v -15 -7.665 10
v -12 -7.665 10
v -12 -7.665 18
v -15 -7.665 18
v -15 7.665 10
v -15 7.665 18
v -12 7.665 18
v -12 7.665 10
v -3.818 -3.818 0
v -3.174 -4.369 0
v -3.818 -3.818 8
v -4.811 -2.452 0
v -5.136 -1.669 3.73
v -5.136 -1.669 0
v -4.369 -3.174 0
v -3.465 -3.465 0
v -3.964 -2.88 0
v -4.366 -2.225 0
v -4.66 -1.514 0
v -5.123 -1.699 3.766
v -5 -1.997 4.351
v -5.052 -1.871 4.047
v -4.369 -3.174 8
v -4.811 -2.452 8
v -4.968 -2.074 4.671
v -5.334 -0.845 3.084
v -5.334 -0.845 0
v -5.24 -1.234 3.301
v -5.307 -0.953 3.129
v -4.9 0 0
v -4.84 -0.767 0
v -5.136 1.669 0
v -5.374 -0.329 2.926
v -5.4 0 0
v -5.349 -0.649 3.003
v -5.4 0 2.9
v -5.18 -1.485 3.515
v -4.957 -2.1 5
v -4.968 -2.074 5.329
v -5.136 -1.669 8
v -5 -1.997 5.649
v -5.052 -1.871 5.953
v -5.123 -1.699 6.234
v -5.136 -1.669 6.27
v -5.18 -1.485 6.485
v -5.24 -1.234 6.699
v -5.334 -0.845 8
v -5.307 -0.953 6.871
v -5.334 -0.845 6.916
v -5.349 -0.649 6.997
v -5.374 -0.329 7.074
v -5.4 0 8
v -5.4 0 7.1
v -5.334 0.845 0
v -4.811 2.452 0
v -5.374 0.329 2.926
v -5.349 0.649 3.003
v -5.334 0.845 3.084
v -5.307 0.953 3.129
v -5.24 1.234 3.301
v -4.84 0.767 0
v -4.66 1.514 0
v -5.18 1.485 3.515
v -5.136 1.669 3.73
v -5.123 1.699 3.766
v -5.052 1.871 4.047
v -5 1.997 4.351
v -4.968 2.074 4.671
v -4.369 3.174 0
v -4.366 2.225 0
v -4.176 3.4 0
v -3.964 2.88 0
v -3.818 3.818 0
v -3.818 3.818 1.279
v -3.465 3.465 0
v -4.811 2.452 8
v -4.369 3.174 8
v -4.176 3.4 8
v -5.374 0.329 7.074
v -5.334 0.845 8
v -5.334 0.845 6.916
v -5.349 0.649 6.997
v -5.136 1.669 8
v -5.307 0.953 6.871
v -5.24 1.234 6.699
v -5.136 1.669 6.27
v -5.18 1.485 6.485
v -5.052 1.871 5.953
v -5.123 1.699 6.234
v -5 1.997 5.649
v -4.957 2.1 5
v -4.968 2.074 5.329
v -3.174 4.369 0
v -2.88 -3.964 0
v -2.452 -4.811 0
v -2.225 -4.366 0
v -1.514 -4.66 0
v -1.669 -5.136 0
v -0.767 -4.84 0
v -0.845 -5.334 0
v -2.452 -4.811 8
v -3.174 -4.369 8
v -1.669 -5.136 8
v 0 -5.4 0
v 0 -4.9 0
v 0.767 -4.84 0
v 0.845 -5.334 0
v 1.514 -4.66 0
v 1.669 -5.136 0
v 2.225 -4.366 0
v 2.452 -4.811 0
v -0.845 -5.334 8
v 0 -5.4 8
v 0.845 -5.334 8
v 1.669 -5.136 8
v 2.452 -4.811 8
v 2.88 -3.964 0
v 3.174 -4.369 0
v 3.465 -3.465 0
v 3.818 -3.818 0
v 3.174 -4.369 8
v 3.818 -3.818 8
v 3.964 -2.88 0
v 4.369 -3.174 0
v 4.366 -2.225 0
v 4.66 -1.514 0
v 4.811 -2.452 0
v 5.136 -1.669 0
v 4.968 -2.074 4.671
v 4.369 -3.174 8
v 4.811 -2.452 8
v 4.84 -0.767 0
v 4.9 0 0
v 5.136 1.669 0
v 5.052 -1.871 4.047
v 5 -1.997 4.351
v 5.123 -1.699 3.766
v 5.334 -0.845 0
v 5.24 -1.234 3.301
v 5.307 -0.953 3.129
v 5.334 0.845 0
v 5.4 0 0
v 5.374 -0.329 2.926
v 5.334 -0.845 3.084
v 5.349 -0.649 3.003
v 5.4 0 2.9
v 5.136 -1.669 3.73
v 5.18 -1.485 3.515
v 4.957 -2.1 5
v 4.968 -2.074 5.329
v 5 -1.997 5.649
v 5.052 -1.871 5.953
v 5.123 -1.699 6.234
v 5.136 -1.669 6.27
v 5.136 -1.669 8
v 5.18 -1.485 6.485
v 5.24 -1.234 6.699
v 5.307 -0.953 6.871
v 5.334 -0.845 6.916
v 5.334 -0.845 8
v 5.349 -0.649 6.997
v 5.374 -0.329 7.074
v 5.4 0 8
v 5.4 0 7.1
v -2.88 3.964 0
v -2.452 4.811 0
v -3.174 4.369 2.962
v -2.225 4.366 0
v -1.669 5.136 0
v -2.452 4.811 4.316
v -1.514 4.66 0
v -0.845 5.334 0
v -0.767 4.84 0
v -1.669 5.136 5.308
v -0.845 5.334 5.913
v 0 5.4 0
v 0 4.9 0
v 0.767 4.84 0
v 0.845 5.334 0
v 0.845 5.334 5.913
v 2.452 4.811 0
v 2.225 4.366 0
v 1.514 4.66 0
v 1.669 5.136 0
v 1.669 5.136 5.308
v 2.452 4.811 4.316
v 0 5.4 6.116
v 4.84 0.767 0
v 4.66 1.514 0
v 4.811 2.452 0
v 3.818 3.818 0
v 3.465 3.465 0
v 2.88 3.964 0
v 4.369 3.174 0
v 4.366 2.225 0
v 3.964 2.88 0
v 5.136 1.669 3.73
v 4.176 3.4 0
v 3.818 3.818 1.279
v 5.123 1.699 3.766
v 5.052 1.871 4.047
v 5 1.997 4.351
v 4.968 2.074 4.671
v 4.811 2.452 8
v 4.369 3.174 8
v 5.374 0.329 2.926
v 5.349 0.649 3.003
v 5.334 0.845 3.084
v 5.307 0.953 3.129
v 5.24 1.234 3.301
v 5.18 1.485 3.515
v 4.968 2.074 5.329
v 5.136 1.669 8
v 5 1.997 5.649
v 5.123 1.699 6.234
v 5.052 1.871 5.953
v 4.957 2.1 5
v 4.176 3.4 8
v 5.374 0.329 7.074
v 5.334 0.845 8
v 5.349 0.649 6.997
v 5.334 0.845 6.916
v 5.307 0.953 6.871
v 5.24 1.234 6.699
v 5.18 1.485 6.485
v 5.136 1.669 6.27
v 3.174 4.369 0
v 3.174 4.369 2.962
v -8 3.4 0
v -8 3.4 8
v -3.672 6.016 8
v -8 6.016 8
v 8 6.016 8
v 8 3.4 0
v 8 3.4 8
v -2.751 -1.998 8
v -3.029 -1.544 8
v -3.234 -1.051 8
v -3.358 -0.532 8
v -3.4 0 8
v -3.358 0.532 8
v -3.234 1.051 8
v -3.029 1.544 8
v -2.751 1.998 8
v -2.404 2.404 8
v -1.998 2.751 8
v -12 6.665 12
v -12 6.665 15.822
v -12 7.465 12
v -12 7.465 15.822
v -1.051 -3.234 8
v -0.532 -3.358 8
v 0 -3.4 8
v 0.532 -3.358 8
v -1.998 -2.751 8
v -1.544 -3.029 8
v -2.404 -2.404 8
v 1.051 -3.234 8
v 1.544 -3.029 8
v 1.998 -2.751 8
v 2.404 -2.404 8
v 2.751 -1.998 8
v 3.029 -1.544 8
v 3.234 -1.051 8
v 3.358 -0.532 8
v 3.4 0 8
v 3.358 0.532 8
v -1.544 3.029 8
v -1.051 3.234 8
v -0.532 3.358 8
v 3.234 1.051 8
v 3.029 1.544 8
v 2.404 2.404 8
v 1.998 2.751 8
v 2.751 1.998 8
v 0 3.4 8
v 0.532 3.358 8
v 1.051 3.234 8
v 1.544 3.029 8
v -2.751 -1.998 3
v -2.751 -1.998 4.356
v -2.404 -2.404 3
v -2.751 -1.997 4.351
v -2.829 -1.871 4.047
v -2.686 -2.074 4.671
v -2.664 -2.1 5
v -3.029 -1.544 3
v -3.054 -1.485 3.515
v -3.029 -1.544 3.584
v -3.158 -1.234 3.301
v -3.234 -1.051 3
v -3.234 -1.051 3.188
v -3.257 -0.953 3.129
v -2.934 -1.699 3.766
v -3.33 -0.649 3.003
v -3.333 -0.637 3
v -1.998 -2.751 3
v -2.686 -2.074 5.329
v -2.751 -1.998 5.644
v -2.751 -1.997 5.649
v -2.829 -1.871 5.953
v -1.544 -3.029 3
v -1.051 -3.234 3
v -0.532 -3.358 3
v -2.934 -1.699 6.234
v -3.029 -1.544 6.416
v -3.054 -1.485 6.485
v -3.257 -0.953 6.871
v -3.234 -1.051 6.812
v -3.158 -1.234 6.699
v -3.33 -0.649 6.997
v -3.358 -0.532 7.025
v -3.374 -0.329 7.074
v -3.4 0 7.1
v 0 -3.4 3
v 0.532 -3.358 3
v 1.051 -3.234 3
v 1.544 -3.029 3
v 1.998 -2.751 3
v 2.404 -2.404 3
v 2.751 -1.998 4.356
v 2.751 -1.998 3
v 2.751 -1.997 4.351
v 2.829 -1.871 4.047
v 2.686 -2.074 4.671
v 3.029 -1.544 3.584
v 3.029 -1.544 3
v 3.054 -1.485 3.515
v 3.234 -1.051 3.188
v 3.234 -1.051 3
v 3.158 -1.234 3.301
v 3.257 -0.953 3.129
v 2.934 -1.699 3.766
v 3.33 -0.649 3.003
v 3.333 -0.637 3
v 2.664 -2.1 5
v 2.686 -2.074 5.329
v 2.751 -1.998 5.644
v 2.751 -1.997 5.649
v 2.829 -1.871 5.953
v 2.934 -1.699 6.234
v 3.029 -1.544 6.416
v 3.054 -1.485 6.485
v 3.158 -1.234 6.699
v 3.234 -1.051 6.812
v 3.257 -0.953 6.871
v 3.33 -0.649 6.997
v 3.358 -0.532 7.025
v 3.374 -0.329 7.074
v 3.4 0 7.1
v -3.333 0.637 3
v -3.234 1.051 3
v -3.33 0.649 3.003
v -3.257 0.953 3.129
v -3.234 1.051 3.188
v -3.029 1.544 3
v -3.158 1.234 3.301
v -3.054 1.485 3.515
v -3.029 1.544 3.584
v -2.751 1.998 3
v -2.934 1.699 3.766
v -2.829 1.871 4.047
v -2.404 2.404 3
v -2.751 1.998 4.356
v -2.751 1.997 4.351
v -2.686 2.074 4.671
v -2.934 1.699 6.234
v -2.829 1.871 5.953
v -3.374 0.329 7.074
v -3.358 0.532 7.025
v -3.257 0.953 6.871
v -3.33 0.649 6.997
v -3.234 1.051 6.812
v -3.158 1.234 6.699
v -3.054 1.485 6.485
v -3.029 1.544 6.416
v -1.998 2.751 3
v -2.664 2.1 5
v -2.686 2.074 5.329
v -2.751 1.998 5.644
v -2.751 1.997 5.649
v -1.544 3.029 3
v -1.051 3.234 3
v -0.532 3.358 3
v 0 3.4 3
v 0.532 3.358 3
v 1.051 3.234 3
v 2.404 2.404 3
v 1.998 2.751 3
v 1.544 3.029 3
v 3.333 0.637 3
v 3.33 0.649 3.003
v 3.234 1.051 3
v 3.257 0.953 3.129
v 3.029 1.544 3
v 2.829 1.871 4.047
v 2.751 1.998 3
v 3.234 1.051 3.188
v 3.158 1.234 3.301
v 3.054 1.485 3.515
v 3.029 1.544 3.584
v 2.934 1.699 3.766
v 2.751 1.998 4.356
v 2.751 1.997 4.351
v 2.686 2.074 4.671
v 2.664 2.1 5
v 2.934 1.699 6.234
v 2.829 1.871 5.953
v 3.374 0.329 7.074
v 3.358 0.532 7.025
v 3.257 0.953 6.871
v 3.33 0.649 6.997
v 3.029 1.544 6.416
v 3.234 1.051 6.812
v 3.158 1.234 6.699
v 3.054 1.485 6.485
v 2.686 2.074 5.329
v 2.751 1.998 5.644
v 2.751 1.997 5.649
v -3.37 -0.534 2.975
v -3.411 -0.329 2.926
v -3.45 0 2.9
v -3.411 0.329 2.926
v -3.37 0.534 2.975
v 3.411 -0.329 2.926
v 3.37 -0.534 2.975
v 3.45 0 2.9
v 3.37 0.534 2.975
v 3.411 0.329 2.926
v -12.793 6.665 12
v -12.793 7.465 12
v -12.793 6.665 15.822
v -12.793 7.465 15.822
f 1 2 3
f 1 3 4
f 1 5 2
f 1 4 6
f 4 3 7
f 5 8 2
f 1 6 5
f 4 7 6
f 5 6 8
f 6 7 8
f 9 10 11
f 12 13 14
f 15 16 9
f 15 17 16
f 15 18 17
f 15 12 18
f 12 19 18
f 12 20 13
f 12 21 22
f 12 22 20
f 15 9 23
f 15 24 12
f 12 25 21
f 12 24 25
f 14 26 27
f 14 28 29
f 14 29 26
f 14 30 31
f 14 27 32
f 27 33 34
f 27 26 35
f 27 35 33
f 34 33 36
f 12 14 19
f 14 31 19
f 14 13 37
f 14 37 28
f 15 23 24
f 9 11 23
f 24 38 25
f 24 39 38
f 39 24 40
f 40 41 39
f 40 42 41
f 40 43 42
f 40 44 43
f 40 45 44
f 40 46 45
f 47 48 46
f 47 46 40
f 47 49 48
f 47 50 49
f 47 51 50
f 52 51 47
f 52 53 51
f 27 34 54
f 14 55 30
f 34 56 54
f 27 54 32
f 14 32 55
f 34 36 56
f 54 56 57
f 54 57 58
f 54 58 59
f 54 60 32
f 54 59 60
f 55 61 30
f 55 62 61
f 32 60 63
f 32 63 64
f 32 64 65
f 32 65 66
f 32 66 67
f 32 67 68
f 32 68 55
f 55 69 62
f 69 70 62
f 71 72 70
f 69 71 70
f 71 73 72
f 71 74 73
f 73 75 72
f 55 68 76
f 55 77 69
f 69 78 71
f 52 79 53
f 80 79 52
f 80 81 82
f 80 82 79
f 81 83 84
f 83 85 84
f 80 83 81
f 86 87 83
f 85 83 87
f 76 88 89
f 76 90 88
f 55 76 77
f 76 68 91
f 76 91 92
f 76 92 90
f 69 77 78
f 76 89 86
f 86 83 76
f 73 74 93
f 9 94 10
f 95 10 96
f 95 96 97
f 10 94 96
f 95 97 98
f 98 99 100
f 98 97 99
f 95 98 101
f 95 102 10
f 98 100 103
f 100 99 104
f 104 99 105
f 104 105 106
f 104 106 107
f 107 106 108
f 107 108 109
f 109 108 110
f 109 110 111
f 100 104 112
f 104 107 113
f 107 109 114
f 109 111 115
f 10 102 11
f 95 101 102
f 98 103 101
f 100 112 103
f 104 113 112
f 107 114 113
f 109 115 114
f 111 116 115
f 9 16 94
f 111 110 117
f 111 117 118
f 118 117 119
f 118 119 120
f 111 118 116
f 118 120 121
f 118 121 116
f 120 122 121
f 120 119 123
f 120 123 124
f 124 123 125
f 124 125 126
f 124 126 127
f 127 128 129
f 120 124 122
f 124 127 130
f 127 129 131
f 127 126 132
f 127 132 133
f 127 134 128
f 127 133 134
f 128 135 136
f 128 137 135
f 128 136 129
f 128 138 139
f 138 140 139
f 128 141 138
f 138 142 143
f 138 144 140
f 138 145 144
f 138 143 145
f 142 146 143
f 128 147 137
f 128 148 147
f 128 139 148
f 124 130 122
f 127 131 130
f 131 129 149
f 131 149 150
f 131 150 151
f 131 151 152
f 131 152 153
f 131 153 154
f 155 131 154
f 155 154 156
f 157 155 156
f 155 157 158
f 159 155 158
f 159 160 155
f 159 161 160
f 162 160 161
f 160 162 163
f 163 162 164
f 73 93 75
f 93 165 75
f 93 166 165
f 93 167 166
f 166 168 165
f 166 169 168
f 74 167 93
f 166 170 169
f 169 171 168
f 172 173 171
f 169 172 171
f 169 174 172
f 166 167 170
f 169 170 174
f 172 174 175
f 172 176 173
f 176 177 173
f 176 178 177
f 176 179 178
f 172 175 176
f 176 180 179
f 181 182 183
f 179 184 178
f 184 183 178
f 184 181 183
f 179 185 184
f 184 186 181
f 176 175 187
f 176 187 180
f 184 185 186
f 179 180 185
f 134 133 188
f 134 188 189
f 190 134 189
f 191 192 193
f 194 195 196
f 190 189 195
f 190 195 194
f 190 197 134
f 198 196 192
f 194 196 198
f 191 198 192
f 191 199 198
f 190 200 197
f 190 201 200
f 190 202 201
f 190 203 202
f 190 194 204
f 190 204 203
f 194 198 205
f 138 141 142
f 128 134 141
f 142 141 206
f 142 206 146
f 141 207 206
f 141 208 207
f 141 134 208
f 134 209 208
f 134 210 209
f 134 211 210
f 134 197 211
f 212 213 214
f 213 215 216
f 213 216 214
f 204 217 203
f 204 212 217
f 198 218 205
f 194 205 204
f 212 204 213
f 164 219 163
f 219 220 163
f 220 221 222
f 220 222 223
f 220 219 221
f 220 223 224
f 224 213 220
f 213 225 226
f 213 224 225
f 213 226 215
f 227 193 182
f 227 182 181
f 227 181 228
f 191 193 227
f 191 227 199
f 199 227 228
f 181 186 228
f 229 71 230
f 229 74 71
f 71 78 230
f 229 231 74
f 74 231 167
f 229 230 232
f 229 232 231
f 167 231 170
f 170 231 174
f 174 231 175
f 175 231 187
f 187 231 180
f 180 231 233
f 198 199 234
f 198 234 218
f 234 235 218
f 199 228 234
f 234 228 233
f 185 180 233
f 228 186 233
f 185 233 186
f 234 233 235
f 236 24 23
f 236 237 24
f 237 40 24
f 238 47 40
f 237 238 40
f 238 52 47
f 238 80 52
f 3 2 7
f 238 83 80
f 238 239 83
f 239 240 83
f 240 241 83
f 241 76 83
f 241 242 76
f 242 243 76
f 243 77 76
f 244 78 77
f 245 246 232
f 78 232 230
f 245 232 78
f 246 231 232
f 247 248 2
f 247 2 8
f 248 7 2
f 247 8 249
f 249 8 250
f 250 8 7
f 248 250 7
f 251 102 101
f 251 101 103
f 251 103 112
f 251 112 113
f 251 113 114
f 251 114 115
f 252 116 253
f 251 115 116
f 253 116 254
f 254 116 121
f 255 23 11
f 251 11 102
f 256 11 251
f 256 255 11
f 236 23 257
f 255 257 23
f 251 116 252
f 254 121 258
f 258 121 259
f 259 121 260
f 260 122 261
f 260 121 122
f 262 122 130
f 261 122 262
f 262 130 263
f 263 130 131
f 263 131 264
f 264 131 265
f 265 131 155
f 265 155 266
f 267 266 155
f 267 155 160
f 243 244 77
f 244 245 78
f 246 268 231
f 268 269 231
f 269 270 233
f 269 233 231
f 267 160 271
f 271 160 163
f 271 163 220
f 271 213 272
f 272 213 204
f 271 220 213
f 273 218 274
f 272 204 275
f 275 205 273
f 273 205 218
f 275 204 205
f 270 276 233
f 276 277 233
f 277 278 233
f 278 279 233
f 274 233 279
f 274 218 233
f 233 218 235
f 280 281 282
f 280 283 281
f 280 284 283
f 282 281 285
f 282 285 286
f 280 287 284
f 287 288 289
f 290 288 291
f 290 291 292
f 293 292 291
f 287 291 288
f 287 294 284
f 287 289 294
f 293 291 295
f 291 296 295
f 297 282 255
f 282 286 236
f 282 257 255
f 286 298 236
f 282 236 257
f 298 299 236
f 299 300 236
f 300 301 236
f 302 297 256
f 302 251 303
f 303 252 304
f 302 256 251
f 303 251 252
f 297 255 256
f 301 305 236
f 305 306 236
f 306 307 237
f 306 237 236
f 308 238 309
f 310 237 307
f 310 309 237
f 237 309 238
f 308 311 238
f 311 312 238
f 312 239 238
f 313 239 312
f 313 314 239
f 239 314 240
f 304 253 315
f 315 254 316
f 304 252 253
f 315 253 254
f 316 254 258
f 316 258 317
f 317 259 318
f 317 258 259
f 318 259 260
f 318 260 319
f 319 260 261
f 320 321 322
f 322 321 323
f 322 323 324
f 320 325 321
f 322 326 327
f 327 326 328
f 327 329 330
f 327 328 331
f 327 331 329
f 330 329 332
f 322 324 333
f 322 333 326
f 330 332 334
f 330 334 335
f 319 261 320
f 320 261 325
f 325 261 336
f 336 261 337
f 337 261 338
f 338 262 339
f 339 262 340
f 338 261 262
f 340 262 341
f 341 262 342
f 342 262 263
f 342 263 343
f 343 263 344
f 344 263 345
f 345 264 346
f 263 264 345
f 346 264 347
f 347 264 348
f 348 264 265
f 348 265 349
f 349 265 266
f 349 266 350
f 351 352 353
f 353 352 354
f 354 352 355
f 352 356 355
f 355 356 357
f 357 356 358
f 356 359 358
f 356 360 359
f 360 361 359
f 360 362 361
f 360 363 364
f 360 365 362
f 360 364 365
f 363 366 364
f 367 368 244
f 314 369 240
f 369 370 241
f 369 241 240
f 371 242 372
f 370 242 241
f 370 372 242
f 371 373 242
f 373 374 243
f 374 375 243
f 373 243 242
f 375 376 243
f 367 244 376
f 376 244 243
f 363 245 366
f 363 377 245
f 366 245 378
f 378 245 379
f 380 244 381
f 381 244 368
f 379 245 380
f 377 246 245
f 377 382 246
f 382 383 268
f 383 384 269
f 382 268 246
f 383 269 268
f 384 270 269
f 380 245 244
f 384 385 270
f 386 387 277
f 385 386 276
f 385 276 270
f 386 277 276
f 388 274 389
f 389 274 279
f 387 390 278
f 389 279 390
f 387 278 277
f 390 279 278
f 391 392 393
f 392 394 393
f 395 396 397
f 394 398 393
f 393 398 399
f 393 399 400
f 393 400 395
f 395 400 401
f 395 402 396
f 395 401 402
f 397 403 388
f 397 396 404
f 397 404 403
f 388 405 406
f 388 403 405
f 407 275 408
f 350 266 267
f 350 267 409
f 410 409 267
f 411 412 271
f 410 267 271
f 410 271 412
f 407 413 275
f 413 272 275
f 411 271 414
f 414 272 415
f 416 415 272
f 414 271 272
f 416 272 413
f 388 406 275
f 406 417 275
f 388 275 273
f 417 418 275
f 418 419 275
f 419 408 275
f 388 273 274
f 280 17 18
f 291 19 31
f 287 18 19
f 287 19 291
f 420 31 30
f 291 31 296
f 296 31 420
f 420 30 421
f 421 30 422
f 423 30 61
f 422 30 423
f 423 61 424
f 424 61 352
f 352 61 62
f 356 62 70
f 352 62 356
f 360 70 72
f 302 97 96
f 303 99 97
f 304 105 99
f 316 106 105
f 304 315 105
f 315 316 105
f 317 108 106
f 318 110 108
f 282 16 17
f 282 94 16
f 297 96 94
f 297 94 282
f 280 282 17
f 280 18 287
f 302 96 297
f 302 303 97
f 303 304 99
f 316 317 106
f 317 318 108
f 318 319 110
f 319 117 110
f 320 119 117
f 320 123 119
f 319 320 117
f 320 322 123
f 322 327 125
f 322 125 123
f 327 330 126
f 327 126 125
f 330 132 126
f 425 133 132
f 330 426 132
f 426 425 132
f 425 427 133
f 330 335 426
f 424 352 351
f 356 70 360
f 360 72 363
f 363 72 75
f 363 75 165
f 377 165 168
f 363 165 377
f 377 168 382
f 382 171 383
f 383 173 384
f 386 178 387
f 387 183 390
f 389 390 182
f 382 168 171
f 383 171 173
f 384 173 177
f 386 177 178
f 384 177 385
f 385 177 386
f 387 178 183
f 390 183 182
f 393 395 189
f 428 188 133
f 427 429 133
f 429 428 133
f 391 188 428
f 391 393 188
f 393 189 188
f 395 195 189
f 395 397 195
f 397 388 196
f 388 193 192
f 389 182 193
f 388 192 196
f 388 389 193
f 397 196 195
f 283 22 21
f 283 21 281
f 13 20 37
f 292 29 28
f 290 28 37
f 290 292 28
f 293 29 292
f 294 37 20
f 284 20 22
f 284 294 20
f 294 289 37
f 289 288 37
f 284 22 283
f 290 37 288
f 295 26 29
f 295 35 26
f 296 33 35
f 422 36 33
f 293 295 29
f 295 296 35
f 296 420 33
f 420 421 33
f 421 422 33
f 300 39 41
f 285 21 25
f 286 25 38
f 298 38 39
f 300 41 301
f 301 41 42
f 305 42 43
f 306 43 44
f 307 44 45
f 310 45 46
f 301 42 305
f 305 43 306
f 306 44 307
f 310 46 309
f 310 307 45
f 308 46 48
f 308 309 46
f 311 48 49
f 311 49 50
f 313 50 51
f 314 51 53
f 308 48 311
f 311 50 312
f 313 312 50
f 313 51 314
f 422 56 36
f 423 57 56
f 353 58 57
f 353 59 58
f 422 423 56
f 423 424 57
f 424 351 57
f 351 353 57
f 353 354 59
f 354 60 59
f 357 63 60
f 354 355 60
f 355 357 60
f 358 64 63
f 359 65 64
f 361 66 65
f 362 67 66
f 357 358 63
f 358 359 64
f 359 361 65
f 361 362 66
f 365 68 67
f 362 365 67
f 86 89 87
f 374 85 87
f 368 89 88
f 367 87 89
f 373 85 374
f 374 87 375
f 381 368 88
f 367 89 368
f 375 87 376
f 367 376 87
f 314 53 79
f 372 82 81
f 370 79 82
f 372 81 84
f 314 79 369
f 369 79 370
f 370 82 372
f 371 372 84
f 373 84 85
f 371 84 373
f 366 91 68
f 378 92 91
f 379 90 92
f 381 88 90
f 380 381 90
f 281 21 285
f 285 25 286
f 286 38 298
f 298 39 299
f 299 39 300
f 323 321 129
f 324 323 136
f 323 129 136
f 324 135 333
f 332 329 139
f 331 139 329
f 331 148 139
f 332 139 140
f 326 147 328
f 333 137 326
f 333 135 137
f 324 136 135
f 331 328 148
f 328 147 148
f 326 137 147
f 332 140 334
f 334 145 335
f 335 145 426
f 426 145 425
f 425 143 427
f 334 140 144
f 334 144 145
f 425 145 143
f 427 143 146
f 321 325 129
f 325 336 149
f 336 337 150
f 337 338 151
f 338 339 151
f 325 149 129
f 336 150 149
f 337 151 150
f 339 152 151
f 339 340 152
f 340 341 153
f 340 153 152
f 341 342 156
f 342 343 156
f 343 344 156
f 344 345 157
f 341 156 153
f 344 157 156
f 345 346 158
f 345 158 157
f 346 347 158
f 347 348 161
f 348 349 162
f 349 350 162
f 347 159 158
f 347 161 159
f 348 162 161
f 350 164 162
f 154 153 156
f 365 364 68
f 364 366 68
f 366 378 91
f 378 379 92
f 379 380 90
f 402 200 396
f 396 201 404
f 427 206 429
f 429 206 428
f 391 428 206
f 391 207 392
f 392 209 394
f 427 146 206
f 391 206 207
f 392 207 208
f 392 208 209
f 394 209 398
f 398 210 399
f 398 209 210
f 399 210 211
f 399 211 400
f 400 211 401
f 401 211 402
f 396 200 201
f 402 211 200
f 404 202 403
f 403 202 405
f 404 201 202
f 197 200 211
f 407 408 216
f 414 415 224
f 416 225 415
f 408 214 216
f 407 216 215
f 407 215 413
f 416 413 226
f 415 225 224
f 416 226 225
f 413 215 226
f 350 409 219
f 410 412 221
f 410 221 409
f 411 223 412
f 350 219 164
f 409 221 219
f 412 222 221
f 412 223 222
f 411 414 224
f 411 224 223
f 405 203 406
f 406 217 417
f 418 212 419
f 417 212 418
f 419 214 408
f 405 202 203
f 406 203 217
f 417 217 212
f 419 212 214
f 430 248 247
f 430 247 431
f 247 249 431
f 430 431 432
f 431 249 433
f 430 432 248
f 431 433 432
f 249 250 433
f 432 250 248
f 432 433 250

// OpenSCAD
// file: tower_sheave.scad
// ====================================================================
// Tower End Sheave Wheel (100% 3D-Printable - Flat on Bed at Z = 0)
// Used at Tower A and Tower B.
// - High flanges to retain cable line securely.
// - 5mm central bore: spins on an M4/M5 bolt in Phase 1;
//   directly accepts a NEMA 17 D-shaft in Phase 2 (includes M3 grub screw hole).
// ====================================================================

$fn = 60;

// Dimensions (mm) - Scaled to 1/3 size (reduced size by 2/3rd)
sheave_outer_dia = 18.0; // Outer flange diameter [scaled from 54mm]
sheave_pitch_dia = 14.67;// Cable track diameter [scaled from 44mm]
sheave_width     = 4.0;  // Total sheave rim width [scaled from 8mm]
hub_h            = 6.0;  // Extended center hub [scaled from 12mm]
bore_dia         = 5.2;  // 5mm motor shaft / M5 screw clearance
grub_screw_dia   = 3.0;  // M3 set/grub screw for Phase 2 motor lock
hub_lift         = (hub_h - sheave_width) / 2; // 1.0mm standoff from bed


module tower_sheave() {
    difference() {
        union() {
            // Main sheave disc (lifted by hub standoff)
            translate([0, 0, hub_lift])
                cylinder(d = sheave_outer_dia, h = sheave_width);
            // Extended center hub (starts at Z = 0)
            cylinder(d = 14.0, h = hub_h);
        }
        
        // Center shaft bore
        translate([0, 0, -1])
            cylinder(d = bore_dia, h = hub_h + 2);
        
        // Deep cable groove
        translate([0, 0, hub_h / 2])
            rotate_extrude(convexity = 10) {
                translate([sheave_pitch_dia / 2, 0, 0])
                    polygon([
                        [-2.0, 0],
                        [6.0, 3.2],
                        [6.0, -3.2]
                    ]);
            }
        
        // Radial M3 grub screw hole (for clamping onto motor shaft in Phase 2)
        translate([0, 0, hub_h / 2])
            rotate([90, 0, 0])
                cylinder(d = grub_screw_dia, h = 20, center = false);
            
        // Decorative weight-reduction spoke cutouts (holiday snowflake / star style)
        for (a = [0 : 60 : 300]) {
            rotate([0, 0, a])
                translate([16, 0, -1])
                    cylinder(d = 8, h = hub_h + 2);
        }
    }
}

// Render flat on bed at Z = 0
tower_sheave();
// main file
// ====================================================================
// Tower Head Station B: Cable Tensioning Station (100% 3D-Printable)
// 
// Features:
// - Slotted horizontal adjustment track (25mm travel range)
// - Tensioning bolt hole: turning an M4/M5 screw pulls the sheave axle outward
//   to tighten the cable and eliminate sag.
// - Bottom 20mm socket to mount onto a wooden dowel, PVC pipe, or printed truss.
// ====================================================================

use <tower_sheave.scad>;

$fn = 40;

body_w         = 15.33; // [scaled from 46mm]
body_l         = 21.67; // [scaled from 65mm]
body_h         = 8.0;   // [scaled from 24mm]
slot_travel    = 9.33;  // [scaled from 28mm]
axle_dia       = 5.4;   // M5 bolt clearance for sheave axle
socket_inner_d = 6.8;   // Fits scaled mast/dowel [scaled from 20.4mm]
socket_wall    = 2.0;
socket_depth   = 10.0;  // [scaled from 25mm]


module tower_head_b() {
    difference() {
        union() {
            // Main horizontal tensioner body
            translate([body_l / 2 - 15, 0, 0])
                cube([body_l, body_w, body_h], center = true);

            // Lower mast mounting socket
            translate([0, 0, -body_h / 2 - socket_depth / 2])
                cylinder(d = socket_inner_d + (socket_wall * 2), h = socket_depth, center = true);
                
            // 45-degree self-supporting diagonal bracket underneath the cantilever
            translate([0, 0, -body_h / 2])
                rotate([0, 90, 0])
                    linear_extrude(height = 16.0, center = true)
                        polygon([[0, socket_inner_d / 2], [socket_depth, socket_inner_d / 2], [0, body_l - 15]]);
        }

        // Inner clevis channel for sheave wheel
        translate([body_l / 2 - 10, 0, 0])
            cube([body_l + 4, 16.0, body_h + 4], center = true);

        // Horizontal tensioning slots on both sides (for axle bolt travel)
        translate([body_l / 2 - 8, 0, 0])
            hull() {
                translate([-slot_travel / 2, 0, 0])
                    rotate([90, 0, 0])
                        cylinder(d = axle_dia, h = body_w + 4, center = true);
                translate([slot_travel / 2, 0, 0])
                    rotate([90, 0, 0])
                        cylinder(d = axle_dia, h = body_w + 4, center = true);
            }

        // Longitudinal tensioner screw hole (M4/M5 bolt pulls/pushes the axle)
        translate([body_l - 15, 0, 0])
            rotate([0, 90, 0])
                cylinder(d = 4.4, h = 30, center = true);

        // Mast socket cavity (bottom) with 45-degree self-aligning lead-in chamfer
        translate([0, 0, -body_h / 2 - socket_depth / 2 - 1])
            cylinder(d = socket_inner_d, h = socket_depth + 2, center = true);
        translate([0, 0, -body_h / 2 - socket_depth])
            cylinder(d1 = socket_inner_d + 3.0, d2 = socket_inner_d, h = 3.0);

        // Mast cross-pin clamp hole
        translate([0, 0, -body_h / 2 - socket_depth / 2])
            rotate([0, 90, 0])
                cylinder(d = 4.2, h = socket_inner_d + 12, center = true);

        // Embossed Station Identification on side: "B - TENSION"
        translate([body_l / 2 - 24, body_w / 2 - 0.2, -body_h / 4])
            rotate([90, 0, 0])
                linear_extrude(height = 0.8)
                    text("B - TENSION", size = 4.0, font = "Liberation Sans:style=Bold");
    }
}

// Visual preview with sheave wheel in tension slot
module preview_station_b() {
    tower_head_b();
    #translate([body_l / 2 - 8, 0, 0])
        rotate([90, 0, 0])
            tower_sheave();
}

// ====================================================================
// Selection
// ====================================================================
// "print"      -> Upright with 45° support gusset (ZERO supports needed!)
// "print_flat" -> Laid flat on its side at Z = 0
// "preview"    -> Upright with sheave wheel attached
mode = "print";

if (mode == "print") {
    // Sits flat on socket base rim with 45-degree self-supporting ramps
    translate([0, 0, body_h / 2 + socket_depth])
        tower_head_b();
} else if (mode == "print_flat") {
    // Laid flat on its side at Z = 0
    translate([0, 0, body_w / 2])
        rotate([90, 0, 0])
            tower_head_b();
} else if (mode == "preview") {
    preview_station_b();
}
